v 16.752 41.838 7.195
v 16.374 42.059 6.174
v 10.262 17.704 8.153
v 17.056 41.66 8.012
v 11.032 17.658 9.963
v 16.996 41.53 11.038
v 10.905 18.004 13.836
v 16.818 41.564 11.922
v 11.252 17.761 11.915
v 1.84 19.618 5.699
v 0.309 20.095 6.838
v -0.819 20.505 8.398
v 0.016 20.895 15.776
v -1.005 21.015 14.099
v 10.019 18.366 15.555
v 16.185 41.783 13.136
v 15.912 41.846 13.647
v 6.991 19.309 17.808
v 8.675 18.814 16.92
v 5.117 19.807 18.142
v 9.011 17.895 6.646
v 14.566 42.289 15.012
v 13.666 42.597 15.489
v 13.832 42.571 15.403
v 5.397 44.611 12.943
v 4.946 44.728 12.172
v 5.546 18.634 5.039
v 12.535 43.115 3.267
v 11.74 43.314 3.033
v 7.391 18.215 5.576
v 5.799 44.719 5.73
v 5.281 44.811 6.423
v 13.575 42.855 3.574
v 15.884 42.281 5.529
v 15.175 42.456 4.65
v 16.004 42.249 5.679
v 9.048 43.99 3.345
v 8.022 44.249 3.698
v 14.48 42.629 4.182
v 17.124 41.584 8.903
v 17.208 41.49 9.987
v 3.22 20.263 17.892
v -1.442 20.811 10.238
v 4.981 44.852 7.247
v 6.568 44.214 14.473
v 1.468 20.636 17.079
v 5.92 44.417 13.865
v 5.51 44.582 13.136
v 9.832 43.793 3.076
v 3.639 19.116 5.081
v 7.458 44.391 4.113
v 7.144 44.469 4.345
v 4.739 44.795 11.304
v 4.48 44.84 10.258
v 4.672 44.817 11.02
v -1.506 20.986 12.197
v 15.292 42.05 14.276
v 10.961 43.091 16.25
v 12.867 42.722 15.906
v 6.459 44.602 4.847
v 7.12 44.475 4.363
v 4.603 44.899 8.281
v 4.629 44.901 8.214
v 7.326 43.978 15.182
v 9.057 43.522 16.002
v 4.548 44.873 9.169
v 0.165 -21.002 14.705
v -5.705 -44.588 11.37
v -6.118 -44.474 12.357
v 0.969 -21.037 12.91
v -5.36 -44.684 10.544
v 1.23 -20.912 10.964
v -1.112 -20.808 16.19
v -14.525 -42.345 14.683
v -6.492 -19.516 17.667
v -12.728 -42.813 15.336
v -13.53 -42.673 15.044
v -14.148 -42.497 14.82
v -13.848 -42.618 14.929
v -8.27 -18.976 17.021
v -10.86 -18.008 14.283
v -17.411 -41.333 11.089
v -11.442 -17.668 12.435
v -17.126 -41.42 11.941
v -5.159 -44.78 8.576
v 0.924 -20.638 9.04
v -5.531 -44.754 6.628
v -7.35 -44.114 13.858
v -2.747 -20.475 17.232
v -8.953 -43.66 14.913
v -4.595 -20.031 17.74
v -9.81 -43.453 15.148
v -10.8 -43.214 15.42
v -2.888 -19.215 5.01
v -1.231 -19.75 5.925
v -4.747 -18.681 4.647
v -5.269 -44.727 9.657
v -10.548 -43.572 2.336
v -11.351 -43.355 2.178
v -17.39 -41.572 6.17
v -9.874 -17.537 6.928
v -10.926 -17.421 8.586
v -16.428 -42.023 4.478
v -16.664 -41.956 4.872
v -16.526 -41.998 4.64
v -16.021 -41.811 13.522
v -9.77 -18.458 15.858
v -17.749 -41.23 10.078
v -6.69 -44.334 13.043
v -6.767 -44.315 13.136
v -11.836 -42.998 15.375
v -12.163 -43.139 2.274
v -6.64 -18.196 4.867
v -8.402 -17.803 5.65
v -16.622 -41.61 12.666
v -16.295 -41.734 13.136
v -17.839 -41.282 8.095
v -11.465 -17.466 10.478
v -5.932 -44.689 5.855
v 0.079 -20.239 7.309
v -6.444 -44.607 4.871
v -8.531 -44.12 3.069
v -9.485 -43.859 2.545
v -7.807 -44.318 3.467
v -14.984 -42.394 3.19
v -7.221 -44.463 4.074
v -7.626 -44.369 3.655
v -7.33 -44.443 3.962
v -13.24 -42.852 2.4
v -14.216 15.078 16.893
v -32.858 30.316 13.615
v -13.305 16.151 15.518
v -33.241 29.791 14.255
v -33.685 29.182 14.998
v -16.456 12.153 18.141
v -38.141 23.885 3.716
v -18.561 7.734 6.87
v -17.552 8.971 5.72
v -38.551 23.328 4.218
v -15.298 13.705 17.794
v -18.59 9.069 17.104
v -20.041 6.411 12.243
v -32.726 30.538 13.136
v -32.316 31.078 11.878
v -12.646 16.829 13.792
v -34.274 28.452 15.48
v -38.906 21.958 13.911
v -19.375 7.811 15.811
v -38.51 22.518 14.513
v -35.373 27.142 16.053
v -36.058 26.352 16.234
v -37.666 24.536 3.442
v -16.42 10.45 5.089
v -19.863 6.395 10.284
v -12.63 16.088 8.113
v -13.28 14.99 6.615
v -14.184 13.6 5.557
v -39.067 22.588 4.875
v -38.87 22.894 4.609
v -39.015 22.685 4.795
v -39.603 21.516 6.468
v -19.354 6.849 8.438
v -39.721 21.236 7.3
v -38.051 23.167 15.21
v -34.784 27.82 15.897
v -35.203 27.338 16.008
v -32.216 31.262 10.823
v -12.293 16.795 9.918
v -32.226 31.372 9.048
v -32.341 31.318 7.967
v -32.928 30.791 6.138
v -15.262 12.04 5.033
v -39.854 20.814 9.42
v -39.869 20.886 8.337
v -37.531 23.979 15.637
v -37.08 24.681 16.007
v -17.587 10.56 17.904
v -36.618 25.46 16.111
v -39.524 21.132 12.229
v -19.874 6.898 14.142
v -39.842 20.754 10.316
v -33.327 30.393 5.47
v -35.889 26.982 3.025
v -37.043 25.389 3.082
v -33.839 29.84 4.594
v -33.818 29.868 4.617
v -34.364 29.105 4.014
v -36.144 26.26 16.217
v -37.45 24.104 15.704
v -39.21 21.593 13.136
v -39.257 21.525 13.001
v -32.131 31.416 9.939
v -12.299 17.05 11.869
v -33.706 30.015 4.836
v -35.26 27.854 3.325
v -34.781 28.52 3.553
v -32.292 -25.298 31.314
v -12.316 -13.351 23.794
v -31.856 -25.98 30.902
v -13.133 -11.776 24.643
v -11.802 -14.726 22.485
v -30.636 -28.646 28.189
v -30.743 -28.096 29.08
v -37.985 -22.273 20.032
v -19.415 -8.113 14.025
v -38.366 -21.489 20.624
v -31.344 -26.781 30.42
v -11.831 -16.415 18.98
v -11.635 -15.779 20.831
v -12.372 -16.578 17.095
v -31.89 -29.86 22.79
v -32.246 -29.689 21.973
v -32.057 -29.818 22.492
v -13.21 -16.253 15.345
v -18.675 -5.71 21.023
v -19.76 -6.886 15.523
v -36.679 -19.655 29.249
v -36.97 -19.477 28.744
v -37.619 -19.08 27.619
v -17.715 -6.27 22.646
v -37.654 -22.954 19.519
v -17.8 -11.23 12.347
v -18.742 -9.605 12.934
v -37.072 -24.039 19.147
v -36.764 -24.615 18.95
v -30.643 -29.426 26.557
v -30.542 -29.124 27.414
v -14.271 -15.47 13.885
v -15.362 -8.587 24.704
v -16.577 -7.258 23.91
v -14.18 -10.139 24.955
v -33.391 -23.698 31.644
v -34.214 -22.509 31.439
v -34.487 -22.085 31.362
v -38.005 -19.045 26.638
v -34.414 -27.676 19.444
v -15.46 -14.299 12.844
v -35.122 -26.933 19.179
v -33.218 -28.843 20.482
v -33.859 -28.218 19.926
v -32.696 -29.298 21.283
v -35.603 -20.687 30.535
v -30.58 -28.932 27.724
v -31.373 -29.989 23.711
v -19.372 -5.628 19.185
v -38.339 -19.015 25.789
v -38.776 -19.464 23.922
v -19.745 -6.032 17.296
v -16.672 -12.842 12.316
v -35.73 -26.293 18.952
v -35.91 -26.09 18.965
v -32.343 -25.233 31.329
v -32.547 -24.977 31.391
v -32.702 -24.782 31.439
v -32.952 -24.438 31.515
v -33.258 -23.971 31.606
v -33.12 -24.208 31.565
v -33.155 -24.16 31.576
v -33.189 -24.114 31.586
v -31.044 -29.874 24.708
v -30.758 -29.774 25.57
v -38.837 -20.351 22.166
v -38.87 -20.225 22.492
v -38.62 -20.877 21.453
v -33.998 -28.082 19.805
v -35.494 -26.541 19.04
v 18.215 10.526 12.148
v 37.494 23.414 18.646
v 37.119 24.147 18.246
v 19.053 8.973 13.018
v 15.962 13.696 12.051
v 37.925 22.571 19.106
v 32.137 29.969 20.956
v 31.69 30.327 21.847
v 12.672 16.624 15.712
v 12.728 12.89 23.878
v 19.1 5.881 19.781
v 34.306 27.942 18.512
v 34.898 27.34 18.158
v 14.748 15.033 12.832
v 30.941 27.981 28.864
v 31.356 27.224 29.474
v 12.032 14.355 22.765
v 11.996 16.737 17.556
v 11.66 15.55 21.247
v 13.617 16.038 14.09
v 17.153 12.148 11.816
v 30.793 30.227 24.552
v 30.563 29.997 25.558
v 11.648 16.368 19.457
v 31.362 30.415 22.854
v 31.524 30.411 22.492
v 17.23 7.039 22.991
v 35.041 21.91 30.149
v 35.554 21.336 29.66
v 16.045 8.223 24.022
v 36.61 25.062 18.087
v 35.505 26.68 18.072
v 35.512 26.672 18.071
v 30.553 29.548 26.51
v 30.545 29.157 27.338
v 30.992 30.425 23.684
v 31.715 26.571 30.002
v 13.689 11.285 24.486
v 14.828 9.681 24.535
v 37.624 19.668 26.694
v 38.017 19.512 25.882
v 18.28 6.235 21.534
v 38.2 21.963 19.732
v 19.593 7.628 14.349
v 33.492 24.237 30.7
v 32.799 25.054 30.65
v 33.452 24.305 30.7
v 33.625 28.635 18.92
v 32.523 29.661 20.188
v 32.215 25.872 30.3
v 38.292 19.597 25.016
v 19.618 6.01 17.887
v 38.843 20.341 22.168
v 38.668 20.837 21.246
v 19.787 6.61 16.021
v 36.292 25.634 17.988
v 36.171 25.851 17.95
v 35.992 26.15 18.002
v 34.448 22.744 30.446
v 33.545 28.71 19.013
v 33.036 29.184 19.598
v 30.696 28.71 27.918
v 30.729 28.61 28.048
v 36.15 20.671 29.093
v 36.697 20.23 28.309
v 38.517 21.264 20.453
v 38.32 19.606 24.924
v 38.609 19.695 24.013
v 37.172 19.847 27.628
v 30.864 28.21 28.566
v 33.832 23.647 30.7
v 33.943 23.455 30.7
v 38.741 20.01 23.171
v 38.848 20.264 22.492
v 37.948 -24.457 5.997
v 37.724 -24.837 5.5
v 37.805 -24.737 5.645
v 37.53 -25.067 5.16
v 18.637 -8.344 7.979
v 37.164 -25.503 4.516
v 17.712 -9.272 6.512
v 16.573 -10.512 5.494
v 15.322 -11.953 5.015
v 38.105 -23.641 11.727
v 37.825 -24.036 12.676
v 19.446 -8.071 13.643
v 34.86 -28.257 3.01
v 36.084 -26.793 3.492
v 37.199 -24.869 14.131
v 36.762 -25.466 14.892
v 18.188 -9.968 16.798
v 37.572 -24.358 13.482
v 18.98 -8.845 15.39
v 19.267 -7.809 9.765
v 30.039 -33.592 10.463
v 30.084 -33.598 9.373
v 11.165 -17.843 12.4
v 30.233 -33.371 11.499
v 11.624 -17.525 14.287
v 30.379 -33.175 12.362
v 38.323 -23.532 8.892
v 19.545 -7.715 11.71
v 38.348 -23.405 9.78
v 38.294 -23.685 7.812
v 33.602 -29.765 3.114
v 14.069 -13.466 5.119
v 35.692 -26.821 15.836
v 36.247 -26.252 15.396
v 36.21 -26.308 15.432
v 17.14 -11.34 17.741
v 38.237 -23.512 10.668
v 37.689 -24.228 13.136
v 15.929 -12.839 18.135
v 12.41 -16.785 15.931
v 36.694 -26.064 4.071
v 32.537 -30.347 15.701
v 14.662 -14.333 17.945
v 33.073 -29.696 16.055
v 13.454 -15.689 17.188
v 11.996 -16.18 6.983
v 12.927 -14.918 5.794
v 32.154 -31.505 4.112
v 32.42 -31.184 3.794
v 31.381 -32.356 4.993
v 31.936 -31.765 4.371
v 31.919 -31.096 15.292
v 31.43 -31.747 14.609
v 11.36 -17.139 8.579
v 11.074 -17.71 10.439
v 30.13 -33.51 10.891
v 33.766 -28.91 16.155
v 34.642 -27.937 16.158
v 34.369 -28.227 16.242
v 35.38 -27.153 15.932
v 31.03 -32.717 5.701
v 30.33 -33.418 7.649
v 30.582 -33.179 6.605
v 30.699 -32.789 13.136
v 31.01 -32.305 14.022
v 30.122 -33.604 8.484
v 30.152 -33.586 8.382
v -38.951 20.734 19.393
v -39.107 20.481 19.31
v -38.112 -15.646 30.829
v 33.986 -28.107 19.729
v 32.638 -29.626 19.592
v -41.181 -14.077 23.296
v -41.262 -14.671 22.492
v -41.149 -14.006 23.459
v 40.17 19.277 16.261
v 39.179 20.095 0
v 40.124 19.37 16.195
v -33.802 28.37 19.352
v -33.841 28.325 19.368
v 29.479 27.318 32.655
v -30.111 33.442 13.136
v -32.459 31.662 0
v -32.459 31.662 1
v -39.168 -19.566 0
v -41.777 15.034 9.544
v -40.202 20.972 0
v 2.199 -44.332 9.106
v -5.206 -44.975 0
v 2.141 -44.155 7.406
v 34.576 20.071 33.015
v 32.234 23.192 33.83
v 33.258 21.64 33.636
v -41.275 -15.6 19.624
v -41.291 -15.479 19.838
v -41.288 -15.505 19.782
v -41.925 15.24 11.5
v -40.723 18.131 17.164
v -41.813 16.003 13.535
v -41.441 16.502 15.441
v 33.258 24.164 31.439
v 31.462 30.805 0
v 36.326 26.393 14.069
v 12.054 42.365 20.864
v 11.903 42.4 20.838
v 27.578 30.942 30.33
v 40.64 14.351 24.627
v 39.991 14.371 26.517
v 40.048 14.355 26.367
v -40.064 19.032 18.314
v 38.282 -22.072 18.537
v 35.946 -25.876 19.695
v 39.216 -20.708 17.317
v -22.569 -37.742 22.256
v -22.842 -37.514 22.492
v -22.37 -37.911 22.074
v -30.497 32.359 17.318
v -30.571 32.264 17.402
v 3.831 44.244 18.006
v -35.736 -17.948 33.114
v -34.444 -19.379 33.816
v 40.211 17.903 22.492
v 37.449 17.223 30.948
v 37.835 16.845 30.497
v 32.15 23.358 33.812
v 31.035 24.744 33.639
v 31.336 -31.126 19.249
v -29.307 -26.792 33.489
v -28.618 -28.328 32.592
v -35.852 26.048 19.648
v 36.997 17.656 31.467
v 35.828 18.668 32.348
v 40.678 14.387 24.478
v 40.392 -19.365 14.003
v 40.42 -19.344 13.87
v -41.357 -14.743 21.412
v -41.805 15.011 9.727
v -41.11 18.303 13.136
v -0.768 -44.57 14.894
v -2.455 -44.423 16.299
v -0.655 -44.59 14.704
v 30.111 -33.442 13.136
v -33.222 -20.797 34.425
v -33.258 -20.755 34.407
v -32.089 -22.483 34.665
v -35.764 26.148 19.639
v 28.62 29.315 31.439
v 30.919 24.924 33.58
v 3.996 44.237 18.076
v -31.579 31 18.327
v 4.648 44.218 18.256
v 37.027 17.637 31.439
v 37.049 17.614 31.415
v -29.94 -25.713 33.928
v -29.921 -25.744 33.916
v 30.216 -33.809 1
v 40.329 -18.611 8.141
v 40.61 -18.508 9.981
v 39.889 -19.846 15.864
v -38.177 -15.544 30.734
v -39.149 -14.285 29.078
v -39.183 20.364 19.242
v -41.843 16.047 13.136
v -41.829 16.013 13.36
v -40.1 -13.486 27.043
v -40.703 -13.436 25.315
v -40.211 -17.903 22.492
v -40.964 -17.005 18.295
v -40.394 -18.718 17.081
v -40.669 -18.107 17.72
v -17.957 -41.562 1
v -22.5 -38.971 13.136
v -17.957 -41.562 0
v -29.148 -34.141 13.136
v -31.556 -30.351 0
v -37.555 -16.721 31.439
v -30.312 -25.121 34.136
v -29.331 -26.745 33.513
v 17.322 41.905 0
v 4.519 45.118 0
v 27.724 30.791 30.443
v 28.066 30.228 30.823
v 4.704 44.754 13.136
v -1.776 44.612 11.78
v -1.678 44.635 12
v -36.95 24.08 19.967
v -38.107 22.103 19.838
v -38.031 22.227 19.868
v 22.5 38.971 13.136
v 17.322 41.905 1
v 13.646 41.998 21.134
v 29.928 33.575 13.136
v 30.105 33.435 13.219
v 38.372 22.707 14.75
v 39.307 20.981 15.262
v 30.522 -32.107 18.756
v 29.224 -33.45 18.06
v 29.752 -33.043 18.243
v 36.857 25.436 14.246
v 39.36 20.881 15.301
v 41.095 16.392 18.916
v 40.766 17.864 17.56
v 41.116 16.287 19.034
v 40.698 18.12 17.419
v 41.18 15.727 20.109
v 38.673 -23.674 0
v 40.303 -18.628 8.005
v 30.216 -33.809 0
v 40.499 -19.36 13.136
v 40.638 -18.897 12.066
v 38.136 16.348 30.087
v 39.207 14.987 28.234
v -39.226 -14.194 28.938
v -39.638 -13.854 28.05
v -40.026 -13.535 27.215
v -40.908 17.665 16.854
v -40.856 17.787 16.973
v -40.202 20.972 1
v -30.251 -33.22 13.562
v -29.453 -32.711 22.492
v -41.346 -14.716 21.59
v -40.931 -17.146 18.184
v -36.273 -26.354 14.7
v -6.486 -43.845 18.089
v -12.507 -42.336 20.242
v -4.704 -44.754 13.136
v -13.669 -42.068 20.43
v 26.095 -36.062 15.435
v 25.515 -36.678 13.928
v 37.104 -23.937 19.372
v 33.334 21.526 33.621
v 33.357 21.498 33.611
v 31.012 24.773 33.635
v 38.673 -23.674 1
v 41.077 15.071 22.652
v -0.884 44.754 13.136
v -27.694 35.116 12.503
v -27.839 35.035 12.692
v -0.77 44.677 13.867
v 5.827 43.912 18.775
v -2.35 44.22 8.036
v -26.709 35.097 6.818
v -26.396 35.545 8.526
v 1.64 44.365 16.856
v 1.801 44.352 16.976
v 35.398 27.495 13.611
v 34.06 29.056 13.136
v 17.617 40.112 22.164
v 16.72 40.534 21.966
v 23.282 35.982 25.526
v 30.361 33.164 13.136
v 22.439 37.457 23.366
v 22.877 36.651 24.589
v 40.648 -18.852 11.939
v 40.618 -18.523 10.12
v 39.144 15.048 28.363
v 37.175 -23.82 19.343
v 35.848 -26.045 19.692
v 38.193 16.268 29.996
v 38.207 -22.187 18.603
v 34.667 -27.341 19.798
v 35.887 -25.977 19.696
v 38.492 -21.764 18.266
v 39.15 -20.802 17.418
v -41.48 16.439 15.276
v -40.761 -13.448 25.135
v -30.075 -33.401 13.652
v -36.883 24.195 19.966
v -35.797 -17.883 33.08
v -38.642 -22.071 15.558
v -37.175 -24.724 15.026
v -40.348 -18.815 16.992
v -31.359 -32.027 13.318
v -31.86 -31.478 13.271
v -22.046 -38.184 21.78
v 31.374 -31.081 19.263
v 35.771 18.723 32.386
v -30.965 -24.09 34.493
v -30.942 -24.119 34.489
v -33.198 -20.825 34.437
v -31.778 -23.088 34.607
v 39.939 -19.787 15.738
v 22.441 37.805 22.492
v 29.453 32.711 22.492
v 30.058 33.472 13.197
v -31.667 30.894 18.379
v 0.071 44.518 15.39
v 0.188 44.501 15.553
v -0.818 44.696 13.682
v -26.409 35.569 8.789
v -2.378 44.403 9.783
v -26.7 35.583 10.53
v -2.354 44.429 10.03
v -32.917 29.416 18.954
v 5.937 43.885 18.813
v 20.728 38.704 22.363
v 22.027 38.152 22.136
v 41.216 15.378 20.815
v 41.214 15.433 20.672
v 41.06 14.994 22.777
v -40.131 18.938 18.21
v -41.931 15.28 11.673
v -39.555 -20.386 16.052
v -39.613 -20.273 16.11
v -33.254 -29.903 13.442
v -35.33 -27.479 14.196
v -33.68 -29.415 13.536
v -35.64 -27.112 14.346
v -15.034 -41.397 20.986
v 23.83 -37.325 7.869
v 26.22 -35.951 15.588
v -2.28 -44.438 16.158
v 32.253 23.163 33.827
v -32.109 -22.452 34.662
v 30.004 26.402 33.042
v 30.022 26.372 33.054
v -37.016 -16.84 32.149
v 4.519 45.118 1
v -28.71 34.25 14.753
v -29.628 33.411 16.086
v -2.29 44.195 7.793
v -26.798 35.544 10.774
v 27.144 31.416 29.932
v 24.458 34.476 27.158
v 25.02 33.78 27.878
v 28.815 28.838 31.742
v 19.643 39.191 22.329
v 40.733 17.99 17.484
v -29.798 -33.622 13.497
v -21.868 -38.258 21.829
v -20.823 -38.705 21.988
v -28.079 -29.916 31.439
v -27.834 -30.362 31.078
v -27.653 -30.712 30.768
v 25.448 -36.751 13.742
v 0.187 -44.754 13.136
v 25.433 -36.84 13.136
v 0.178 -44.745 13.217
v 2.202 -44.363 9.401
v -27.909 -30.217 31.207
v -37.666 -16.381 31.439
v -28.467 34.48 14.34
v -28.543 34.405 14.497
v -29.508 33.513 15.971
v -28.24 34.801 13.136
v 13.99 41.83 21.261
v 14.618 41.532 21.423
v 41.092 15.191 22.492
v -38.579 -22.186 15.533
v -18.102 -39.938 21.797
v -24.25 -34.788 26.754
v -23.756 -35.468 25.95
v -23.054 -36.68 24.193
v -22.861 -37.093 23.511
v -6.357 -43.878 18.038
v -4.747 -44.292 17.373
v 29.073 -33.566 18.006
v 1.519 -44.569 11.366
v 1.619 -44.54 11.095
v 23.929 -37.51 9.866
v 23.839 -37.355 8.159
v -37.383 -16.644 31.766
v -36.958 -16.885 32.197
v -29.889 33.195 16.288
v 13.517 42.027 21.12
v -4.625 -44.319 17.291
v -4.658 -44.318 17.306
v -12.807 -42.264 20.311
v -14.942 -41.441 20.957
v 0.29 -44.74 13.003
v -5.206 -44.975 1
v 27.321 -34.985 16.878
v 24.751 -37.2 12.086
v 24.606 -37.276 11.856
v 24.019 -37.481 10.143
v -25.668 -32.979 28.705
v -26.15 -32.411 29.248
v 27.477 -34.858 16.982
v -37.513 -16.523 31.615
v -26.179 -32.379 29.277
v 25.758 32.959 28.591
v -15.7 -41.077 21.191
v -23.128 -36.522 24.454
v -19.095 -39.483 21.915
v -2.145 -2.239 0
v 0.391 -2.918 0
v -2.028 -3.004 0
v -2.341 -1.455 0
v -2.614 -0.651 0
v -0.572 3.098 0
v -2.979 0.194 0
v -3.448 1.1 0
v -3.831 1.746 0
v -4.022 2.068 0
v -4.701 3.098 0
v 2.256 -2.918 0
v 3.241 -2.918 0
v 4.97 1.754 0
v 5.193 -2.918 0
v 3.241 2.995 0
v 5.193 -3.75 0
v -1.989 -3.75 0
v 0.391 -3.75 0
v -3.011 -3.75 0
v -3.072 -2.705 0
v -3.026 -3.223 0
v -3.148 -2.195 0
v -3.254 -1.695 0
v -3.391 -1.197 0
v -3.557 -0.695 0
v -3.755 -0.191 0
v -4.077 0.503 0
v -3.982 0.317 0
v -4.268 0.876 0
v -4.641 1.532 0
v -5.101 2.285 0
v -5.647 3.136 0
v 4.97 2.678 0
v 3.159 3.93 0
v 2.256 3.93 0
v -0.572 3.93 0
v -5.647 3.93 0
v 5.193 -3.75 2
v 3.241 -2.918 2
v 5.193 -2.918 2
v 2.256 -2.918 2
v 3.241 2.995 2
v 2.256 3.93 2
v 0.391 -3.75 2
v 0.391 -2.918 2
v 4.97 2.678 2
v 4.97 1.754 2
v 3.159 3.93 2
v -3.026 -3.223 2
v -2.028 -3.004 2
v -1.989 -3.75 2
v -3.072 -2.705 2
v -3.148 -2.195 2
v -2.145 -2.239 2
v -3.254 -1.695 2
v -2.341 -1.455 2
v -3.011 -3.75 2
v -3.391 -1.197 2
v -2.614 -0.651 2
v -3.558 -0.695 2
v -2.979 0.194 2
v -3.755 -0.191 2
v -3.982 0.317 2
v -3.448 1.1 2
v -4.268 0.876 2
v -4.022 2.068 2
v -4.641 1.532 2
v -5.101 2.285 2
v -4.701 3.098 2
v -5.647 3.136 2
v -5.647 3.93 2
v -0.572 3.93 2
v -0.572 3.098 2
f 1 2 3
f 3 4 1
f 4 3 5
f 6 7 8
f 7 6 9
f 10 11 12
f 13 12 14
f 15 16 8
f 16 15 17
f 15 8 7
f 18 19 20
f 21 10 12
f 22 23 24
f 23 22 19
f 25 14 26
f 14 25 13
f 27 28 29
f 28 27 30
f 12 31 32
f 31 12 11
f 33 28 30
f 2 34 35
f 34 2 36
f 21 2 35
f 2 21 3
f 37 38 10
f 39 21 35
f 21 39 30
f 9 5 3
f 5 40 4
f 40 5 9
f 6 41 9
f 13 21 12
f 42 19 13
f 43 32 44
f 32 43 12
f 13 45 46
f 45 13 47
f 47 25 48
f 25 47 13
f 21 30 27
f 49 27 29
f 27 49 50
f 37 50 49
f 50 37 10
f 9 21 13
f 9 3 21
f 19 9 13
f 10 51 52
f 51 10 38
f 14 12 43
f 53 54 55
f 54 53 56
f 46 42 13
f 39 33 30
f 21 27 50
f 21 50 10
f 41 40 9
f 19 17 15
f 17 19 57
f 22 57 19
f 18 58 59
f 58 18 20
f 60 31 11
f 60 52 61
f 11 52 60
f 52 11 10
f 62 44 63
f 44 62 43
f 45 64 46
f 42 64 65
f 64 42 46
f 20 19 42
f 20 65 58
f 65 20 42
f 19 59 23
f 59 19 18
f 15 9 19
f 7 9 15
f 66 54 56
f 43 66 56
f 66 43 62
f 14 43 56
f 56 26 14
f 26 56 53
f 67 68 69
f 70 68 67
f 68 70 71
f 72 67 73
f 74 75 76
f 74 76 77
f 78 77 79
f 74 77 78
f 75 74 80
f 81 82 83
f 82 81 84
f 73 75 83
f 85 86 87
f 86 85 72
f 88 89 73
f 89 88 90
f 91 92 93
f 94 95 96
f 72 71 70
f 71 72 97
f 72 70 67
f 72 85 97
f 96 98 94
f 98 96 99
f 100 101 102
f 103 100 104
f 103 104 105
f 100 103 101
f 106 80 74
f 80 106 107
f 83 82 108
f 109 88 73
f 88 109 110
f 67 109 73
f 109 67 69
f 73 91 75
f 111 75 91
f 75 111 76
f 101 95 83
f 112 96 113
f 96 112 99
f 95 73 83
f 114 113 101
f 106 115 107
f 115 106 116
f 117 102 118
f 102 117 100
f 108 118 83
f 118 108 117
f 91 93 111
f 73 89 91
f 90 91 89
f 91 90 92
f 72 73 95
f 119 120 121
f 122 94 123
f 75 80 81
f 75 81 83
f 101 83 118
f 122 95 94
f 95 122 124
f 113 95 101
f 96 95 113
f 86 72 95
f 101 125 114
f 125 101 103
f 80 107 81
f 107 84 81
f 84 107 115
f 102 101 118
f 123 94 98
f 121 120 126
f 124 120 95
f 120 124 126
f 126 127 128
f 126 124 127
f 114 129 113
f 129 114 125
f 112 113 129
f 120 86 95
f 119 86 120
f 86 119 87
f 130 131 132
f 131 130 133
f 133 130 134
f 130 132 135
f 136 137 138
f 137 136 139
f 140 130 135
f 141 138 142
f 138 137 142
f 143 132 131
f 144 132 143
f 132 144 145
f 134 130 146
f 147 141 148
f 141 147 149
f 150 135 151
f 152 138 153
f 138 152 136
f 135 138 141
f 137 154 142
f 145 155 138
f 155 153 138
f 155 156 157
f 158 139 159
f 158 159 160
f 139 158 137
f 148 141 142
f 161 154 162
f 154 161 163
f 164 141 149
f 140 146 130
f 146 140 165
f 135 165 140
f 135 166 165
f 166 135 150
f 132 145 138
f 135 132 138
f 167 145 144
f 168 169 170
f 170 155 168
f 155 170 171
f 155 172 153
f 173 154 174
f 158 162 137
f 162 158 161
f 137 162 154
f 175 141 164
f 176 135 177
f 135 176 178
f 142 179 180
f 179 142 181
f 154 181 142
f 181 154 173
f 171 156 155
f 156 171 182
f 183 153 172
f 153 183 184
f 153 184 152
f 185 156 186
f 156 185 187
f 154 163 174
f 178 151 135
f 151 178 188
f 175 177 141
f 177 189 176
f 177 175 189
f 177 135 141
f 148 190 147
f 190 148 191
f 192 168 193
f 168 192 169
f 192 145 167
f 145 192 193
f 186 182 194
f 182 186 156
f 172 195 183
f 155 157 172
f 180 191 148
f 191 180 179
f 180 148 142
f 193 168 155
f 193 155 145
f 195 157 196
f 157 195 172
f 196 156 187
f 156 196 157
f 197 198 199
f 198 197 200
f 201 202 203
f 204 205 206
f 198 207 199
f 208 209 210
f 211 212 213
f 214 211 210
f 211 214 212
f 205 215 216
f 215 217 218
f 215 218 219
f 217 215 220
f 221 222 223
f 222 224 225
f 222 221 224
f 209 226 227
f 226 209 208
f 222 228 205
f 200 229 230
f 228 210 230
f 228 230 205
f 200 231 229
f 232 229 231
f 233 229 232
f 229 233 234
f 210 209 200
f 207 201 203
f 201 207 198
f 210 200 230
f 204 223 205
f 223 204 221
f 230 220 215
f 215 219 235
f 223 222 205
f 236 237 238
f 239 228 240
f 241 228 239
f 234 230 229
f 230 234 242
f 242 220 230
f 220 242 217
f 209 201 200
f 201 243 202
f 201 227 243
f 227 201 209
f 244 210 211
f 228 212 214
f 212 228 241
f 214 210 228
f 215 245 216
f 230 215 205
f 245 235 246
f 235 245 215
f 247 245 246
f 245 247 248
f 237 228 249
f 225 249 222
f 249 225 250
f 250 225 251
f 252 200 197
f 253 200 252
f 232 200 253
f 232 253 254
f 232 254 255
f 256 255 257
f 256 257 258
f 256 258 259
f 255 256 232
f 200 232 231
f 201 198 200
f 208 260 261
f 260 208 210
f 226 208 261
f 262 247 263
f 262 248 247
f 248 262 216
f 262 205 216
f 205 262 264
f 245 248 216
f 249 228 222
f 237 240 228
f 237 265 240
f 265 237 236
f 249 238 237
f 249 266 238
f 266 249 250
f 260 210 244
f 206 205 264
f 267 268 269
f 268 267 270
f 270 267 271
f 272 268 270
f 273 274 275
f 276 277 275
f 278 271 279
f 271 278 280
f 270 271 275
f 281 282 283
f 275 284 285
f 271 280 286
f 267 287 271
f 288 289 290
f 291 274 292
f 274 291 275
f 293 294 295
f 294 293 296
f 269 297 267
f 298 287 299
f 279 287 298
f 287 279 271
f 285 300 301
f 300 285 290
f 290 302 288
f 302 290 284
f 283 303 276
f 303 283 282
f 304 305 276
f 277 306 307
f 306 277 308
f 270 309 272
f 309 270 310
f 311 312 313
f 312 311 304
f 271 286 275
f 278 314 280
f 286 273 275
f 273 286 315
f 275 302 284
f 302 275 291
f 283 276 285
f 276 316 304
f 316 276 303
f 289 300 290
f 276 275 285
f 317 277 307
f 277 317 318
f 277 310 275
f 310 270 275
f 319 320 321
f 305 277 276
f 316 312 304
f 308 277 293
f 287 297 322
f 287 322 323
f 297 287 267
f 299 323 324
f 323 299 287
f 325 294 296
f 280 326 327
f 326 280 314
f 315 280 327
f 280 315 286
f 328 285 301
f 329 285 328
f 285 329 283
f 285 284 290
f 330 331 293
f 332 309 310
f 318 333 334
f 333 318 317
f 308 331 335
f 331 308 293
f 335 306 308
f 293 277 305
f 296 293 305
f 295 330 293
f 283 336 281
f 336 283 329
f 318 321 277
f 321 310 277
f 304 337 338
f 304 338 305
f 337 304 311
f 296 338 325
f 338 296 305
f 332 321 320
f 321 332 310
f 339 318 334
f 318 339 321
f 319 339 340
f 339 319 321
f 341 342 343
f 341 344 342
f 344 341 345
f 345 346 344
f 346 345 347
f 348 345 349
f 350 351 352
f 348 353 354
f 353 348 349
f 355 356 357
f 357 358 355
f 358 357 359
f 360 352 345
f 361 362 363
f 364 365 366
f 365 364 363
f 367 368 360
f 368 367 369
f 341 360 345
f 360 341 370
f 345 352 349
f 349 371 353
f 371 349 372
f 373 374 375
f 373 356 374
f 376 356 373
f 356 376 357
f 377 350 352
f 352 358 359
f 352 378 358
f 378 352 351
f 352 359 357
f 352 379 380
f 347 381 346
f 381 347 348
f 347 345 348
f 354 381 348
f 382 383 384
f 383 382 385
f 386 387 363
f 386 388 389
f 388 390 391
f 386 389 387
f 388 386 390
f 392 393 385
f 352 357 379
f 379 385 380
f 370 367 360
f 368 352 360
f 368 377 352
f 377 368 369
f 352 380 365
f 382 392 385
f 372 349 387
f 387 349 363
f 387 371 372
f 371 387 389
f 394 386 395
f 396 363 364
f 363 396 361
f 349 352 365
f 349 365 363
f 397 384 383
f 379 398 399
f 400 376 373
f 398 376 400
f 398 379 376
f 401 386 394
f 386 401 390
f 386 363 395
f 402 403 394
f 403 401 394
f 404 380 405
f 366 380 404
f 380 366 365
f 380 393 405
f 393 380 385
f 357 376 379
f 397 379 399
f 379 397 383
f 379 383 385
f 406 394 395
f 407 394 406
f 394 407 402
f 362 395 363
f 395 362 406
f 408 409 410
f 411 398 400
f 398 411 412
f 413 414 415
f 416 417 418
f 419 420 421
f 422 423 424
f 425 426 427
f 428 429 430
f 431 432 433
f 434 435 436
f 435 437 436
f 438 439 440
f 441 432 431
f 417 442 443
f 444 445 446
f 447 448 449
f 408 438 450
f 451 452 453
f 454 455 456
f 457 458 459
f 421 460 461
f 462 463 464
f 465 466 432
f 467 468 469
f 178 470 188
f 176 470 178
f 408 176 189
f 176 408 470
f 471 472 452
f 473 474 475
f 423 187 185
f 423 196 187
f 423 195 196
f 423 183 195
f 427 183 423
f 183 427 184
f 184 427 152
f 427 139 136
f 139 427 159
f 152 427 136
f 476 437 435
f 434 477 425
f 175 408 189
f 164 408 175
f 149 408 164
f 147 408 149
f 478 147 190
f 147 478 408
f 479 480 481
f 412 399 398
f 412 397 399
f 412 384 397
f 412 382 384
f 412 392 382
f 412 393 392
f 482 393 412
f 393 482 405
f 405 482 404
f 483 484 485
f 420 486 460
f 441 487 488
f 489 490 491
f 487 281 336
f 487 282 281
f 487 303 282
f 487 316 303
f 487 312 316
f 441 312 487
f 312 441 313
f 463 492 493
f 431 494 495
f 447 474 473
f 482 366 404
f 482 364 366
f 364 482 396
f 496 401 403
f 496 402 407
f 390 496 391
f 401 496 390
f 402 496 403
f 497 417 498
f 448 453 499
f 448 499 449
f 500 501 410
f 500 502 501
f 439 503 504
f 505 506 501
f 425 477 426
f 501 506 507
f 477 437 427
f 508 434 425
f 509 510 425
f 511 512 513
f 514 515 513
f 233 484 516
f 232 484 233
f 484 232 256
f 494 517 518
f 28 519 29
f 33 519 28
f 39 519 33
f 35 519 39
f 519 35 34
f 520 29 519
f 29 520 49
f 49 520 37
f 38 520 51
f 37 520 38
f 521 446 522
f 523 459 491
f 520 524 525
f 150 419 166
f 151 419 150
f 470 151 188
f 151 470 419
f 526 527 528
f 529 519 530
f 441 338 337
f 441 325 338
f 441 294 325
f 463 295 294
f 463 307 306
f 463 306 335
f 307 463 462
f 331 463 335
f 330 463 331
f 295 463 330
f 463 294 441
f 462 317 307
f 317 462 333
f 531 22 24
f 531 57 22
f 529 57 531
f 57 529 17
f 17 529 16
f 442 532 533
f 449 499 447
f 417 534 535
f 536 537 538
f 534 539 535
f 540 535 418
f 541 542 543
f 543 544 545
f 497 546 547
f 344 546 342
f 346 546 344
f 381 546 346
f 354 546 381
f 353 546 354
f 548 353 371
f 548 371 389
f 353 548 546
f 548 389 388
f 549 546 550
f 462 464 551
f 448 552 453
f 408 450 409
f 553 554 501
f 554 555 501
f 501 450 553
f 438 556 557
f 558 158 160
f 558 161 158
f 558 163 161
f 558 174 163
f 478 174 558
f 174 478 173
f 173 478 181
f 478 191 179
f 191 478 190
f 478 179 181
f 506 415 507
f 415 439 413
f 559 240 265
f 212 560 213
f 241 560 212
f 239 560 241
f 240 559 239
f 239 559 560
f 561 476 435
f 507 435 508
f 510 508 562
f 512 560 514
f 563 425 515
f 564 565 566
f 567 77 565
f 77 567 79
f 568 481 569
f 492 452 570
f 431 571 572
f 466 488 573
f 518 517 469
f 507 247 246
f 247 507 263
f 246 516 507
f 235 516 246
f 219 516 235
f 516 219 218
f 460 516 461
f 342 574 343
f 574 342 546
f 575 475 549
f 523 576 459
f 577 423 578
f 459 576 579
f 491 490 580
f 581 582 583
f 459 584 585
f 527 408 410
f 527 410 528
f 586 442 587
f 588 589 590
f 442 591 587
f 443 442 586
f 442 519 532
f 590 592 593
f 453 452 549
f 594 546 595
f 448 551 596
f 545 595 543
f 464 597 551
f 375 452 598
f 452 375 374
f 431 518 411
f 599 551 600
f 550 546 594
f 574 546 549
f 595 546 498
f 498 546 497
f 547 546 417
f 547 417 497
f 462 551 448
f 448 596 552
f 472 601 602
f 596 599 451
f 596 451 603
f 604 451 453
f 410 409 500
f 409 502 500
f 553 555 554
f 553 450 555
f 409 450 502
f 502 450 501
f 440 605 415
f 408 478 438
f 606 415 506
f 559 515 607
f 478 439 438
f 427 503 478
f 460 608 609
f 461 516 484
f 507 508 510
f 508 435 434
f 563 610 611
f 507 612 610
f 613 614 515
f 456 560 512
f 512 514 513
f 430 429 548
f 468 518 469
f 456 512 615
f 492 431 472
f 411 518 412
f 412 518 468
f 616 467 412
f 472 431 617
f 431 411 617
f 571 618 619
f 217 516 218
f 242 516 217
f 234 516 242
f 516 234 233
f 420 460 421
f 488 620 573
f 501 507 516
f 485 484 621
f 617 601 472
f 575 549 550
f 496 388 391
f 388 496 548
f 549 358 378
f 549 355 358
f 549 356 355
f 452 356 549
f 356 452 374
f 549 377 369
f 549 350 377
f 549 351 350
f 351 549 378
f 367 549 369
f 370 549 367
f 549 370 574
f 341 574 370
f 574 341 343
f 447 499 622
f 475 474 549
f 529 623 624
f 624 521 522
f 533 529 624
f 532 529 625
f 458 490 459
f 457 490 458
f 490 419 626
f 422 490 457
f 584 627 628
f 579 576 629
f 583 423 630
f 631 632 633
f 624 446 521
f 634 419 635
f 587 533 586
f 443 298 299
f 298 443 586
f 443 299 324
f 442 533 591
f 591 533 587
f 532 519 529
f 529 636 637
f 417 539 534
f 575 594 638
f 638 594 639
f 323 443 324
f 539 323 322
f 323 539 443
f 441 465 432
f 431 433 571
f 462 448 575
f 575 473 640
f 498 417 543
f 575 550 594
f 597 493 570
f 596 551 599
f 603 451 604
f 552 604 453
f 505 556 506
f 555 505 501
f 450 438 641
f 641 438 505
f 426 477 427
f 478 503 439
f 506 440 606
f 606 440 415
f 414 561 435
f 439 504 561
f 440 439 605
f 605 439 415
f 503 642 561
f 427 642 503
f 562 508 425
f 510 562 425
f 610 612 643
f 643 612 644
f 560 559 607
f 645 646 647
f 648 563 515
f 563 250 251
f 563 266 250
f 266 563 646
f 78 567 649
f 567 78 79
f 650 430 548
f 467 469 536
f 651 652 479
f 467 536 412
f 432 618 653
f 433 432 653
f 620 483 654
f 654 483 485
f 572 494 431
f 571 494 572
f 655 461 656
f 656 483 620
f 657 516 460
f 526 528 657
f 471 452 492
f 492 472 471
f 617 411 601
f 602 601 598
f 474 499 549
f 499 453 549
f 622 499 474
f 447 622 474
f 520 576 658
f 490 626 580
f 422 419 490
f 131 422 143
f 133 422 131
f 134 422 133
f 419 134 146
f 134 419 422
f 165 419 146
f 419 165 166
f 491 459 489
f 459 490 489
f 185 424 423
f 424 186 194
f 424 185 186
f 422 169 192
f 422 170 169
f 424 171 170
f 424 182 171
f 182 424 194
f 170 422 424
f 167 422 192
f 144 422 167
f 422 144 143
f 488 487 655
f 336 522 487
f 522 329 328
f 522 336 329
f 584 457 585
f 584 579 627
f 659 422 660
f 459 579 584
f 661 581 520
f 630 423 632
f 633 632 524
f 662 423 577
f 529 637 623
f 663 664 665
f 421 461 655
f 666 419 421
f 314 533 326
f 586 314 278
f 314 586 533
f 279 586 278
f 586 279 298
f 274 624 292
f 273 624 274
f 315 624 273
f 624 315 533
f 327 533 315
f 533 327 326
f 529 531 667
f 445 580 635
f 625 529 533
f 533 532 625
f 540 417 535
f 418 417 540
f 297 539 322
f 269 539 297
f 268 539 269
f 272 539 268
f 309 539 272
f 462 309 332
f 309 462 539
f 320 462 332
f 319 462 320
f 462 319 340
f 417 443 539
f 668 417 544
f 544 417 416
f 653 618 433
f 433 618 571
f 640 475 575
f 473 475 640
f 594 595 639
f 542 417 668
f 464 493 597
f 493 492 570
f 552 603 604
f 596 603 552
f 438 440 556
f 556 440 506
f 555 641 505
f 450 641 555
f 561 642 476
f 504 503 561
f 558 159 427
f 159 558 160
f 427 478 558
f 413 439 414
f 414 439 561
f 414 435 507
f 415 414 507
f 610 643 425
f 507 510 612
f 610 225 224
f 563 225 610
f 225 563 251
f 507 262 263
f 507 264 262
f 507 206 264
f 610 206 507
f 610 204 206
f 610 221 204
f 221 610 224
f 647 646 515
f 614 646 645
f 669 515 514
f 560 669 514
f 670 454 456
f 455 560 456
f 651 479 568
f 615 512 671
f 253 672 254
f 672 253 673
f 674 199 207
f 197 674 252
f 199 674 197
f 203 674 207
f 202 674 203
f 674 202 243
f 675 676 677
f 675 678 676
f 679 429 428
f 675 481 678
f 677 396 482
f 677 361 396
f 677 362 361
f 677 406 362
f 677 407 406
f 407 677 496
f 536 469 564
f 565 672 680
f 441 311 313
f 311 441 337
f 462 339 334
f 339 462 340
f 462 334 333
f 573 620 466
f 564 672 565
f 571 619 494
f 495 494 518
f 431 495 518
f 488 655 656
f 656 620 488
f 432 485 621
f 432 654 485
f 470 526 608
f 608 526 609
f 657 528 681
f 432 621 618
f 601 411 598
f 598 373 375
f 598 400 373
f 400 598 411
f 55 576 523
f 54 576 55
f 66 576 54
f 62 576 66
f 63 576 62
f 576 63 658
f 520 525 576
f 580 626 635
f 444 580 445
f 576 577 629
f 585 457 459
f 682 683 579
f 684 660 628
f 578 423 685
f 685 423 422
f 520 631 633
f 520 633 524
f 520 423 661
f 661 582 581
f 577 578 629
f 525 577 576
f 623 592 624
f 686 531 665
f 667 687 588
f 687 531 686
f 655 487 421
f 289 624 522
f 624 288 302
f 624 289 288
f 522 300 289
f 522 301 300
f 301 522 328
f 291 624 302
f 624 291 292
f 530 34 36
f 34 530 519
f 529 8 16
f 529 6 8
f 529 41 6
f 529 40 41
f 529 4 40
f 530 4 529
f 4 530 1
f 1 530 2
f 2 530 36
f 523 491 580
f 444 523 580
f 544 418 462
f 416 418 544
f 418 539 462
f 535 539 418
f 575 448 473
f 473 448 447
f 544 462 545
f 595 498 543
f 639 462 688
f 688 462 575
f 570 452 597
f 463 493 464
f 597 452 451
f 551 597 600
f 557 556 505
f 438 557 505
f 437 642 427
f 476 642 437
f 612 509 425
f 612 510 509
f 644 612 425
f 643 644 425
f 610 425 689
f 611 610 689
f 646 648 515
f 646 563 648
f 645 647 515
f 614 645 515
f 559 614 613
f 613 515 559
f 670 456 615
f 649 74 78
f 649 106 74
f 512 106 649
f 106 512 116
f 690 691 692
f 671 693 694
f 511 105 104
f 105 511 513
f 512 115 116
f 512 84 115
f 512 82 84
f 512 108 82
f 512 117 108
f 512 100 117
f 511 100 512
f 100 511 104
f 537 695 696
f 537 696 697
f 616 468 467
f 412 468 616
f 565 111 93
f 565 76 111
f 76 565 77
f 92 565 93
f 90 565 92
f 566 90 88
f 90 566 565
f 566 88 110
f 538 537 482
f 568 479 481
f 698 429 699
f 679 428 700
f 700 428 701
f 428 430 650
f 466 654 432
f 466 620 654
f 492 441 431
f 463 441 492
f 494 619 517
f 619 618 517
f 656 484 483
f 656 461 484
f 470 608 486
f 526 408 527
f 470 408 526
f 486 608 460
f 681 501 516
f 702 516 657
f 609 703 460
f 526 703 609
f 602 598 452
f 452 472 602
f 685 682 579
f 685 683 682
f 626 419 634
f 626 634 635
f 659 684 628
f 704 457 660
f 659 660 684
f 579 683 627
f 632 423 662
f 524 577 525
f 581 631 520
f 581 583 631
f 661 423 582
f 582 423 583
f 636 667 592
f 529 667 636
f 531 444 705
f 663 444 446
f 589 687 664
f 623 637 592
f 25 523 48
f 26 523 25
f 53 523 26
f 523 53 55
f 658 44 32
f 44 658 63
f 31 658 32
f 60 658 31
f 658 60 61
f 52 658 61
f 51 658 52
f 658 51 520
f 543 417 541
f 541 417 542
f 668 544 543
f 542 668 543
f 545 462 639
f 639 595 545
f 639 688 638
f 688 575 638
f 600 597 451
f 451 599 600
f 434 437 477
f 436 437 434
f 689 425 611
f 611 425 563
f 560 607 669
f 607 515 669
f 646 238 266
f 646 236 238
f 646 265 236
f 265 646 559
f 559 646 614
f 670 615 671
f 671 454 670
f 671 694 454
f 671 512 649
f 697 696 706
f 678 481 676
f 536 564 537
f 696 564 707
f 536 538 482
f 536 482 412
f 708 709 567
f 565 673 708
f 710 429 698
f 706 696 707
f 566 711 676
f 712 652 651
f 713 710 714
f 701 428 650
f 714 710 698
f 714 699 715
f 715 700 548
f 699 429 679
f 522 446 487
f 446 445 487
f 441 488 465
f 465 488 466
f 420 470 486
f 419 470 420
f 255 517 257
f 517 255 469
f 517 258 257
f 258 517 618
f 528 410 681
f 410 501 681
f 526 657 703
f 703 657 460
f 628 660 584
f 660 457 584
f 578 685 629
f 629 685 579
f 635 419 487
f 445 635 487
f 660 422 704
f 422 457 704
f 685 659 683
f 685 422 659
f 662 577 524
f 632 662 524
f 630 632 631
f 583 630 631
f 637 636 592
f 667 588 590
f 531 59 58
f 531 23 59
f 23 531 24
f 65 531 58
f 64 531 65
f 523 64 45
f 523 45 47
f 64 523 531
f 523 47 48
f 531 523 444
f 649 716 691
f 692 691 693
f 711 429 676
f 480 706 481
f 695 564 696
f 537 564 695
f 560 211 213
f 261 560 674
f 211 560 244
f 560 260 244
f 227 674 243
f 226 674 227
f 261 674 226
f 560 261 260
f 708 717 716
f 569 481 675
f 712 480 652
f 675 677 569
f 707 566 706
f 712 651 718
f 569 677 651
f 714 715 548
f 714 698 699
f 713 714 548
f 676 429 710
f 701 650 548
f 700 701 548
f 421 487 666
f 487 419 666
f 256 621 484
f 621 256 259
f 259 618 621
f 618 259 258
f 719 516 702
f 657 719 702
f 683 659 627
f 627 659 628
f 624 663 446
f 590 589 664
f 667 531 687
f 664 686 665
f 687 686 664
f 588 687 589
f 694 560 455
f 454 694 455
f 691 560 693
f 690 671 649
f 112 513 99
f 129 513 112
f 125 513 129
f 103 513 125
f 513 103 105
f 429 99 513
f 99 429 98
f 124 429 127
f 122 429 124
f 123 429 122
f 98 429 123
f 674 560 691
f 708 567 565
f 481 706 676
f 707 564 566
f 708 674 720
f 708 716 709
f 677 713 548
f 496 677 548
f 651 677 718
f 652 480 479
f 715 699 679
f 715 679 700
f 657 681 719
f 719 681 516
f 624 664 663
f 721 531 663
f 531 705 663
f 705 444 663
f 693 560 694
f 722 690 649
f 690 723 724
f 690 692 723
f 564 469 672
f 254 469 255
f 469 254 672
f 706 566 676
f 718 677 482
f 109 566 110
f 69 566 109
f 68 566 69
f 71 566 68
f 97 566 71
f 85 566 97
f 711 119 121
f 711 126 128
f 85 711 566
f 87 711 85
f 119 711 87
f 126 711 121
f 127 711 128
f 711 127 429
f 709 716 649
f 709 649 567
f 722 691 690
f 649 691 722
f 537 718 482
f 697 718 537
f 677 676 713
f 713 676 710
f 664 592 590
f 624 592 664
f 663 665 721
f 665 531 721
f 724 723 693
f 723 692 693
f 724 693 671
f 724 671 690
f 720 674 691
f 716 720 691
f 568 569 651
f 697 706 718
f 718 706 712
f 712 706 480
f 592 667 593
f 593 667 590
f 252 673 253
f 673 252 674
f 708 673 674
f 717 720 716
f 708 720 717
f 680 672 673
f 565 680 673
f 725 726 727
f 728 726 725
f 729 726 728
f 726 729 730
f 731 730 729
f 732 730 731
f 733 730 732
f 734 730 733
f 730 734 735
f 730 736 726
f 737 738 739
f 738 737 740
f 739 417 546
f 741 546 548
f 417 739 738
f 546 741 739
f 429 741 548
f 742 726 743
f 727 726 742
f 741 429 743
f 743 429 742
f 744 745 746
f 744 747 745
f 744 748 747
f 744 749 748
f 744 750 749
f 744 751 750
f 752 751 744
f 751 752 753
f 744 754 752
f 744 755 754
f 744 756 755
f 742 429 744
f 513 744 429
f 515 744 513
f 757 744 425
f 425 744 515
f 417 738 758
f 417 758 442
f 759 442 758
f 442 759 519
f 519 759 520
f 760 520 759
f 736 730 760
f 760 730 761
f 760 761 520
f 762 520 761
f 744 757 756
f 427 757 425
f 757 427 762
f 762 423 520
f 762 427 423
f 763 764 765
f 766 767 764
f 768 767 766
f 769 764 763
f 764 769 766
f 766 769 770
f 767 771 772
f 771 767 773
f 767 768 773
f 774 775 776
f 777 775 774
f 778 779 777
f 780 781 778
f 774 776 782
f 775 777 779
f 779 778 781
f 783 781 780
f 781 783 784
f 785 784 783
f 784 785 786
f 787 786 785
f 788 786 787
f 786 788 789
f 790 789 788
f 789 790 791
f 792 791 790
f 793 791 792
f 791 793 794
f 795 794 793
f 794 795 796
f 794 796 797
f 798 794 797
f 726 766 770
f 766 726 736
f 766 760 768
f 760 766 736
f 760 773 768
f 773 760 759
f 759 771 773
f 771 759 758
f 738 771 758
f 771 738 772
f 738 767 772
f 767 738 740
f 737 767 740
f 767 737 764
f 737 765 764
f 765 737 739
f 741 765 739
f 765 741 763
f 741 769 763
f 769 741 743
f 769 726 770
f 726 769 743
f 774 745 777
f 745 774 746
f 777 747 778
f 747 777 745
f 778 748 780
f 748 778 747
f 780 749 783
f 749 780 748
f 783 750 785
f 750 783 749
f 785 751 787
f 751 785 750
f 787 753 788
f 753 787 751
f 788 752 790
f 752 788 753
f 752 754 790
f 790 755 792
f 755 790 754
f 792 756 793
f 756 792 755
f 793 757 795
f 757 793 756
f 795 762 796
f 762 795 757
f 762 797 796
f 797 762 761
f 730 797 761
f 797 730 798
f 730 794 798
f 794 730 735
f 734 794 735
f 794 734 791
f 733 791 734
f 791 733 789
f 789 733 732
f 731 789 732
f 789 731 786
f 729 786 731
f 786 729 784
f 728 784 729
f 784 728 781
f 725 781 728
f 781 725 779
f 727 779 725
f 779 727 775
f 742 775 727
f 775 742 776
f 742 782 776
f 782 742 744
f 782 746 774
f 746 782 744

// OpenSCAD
difference() {
	difference() {
		difference() {
			hull() {
				union() {
					union() {
						rotate(a = 75.9114358965, v = [0, 0, 1]) {
							translate(v = [0, -6.6000000000, 0]) {
								cube(size = [44.8608917595, 13.2000000000, 1]);
							}
						}
						rotate(a = -104.9847968406, v = [0, 0, 1]) {
							translate(v = [0, -6.6000000000, 0]) {
								cube(size = [44.7913220073, 13.2000000000, 1]);
							}
						}
						rotate(a = 144.0809609006, v = [0, 0, 1]) {
							translate(v = [0, -6.6000000000, 0]) {
								cube(size = [44.8608912516, 13.2000000000, 1]);
							}
						}
						rotate(a = -144.7853456242, v = [0, 0, 1]) {
							translate(v = [0, -6.6000000000, 0]) {
								cube(size = [43.2827529095, 13.2000000000, 1]);
							}
						}
						rotate(a = 35.7745189155, v = [0, 0, 1]) {
							translate(v = [0, -6.6000000000, 0]) {
								cube(size = [43.5340620878, 13.2000000000, 1]);
							}
						}
						rotate(a = -39.8428638743, v = [0, 0, 1]) {
							translate(v = [0, -6.6000000000, 0]) {
								cube(size = [44.8608913754, 13.2000000000, 1]);
							}
						}
					}
					translate(v = [0, 0, 13.1355401483]) {
						intersection() {
							hull() {
								rotate(a = 94.5062267705, v = [-0.9669223886, 0.2426690176, 0.0000007243]) {
									cylinder(h = 45, r = 9.6000000000);
								}
								rotate(a = 95.5200522763, v = [0.9615147772, -0.2573636060, -0.0000007042]) {
									cylinder(h = 45, r = 9.6000000000);
								}
								rotate(a = 94.5063173094, v = [-0.5848280876, -0.8073431849, 0.0000013922]) {
									cylinder(h = 45, r = 9.6000000000);
								}
								rotate(a = 74.1205138885, v = [0.5546363344, -0.7858202356, 0.0000002312]) {
									cylinder(h = 45, r = 9.6000000000);
								}
								rotate(a = 75.3351503543, v = [-0.5655525988, 0.7848936233, -0.0000002193]) {
									cylinder(h = 45, r = 9.6000000000);
								}
								rotate(a = 94.5062952300, v = [0.6387036576, 0.7654309951, -0.0000014041]) {
									cylinder(h = 45, r = 9.6000000000);
								}
							}
							sphere(r = 45);
						}
					}
				}
			}
			translate(v = [0, 0, 13.1355401483]) {
				rotate(a = 94.5062267705, v = [-0.9669223886, 0.2426690176, 0.0000007243]) {
					translate(v = [0, 0, 20]) {
						cylinder(h = 45, r = 6.6000000000);
					}
				}
				rotate(a = 95.5200522763, v = [0.9615147772, -0.2573636060, -0.0000007042]) {
					translate(v = [0, 0, 20]) {
						cylinder(h = 45, r = 6.6000000000);
					}
				}
				rotate(a = 94.5063173094, v = [-0.5848280876, -0.8073431849, 0.0000013922]) {
					translate(v = [0, 0, 20]) {
						cylinder(h = 45, r = 6.6000000000);
					}
				}
				rotate(a = 74.1205138885, v = [0.5546363344, -0.7858202356, 0.0000002312]) {
					translate(v = [0, 0, 20]) {
						cylinder(h = 45, r = 6.6000000000);
					}
				}
				rotate(a = 75.3351503543, v = [-0.5655525988, 0.7848936233, -0.0000002193]) {
					translate(v = [0, 0, 20]) {
						cylinder(h = 45, r = 6.6000000000);
					}
				}
				rotate(a = 94.5062952300, v = [0.6387036576, 0.7654309951, -0.0000014041]) {
					translate(v = [0, 0, 20]) {
						cylinder(h = 45, r = 6.6000000000);
					}
				}
			}
		}
		translate(v = [-100, -100, -100]) {
			cube(size = [200, 200, 100]);
		}
	}
	translate(v = [0, 0, 2]) {
		rotate(a = 180, v = [0, 1, 0]) {
			linear_extrude(height = 3) {
				text(halign = "center", size = 8, text = "17", valign = "center");
			}
		}
	}
}
